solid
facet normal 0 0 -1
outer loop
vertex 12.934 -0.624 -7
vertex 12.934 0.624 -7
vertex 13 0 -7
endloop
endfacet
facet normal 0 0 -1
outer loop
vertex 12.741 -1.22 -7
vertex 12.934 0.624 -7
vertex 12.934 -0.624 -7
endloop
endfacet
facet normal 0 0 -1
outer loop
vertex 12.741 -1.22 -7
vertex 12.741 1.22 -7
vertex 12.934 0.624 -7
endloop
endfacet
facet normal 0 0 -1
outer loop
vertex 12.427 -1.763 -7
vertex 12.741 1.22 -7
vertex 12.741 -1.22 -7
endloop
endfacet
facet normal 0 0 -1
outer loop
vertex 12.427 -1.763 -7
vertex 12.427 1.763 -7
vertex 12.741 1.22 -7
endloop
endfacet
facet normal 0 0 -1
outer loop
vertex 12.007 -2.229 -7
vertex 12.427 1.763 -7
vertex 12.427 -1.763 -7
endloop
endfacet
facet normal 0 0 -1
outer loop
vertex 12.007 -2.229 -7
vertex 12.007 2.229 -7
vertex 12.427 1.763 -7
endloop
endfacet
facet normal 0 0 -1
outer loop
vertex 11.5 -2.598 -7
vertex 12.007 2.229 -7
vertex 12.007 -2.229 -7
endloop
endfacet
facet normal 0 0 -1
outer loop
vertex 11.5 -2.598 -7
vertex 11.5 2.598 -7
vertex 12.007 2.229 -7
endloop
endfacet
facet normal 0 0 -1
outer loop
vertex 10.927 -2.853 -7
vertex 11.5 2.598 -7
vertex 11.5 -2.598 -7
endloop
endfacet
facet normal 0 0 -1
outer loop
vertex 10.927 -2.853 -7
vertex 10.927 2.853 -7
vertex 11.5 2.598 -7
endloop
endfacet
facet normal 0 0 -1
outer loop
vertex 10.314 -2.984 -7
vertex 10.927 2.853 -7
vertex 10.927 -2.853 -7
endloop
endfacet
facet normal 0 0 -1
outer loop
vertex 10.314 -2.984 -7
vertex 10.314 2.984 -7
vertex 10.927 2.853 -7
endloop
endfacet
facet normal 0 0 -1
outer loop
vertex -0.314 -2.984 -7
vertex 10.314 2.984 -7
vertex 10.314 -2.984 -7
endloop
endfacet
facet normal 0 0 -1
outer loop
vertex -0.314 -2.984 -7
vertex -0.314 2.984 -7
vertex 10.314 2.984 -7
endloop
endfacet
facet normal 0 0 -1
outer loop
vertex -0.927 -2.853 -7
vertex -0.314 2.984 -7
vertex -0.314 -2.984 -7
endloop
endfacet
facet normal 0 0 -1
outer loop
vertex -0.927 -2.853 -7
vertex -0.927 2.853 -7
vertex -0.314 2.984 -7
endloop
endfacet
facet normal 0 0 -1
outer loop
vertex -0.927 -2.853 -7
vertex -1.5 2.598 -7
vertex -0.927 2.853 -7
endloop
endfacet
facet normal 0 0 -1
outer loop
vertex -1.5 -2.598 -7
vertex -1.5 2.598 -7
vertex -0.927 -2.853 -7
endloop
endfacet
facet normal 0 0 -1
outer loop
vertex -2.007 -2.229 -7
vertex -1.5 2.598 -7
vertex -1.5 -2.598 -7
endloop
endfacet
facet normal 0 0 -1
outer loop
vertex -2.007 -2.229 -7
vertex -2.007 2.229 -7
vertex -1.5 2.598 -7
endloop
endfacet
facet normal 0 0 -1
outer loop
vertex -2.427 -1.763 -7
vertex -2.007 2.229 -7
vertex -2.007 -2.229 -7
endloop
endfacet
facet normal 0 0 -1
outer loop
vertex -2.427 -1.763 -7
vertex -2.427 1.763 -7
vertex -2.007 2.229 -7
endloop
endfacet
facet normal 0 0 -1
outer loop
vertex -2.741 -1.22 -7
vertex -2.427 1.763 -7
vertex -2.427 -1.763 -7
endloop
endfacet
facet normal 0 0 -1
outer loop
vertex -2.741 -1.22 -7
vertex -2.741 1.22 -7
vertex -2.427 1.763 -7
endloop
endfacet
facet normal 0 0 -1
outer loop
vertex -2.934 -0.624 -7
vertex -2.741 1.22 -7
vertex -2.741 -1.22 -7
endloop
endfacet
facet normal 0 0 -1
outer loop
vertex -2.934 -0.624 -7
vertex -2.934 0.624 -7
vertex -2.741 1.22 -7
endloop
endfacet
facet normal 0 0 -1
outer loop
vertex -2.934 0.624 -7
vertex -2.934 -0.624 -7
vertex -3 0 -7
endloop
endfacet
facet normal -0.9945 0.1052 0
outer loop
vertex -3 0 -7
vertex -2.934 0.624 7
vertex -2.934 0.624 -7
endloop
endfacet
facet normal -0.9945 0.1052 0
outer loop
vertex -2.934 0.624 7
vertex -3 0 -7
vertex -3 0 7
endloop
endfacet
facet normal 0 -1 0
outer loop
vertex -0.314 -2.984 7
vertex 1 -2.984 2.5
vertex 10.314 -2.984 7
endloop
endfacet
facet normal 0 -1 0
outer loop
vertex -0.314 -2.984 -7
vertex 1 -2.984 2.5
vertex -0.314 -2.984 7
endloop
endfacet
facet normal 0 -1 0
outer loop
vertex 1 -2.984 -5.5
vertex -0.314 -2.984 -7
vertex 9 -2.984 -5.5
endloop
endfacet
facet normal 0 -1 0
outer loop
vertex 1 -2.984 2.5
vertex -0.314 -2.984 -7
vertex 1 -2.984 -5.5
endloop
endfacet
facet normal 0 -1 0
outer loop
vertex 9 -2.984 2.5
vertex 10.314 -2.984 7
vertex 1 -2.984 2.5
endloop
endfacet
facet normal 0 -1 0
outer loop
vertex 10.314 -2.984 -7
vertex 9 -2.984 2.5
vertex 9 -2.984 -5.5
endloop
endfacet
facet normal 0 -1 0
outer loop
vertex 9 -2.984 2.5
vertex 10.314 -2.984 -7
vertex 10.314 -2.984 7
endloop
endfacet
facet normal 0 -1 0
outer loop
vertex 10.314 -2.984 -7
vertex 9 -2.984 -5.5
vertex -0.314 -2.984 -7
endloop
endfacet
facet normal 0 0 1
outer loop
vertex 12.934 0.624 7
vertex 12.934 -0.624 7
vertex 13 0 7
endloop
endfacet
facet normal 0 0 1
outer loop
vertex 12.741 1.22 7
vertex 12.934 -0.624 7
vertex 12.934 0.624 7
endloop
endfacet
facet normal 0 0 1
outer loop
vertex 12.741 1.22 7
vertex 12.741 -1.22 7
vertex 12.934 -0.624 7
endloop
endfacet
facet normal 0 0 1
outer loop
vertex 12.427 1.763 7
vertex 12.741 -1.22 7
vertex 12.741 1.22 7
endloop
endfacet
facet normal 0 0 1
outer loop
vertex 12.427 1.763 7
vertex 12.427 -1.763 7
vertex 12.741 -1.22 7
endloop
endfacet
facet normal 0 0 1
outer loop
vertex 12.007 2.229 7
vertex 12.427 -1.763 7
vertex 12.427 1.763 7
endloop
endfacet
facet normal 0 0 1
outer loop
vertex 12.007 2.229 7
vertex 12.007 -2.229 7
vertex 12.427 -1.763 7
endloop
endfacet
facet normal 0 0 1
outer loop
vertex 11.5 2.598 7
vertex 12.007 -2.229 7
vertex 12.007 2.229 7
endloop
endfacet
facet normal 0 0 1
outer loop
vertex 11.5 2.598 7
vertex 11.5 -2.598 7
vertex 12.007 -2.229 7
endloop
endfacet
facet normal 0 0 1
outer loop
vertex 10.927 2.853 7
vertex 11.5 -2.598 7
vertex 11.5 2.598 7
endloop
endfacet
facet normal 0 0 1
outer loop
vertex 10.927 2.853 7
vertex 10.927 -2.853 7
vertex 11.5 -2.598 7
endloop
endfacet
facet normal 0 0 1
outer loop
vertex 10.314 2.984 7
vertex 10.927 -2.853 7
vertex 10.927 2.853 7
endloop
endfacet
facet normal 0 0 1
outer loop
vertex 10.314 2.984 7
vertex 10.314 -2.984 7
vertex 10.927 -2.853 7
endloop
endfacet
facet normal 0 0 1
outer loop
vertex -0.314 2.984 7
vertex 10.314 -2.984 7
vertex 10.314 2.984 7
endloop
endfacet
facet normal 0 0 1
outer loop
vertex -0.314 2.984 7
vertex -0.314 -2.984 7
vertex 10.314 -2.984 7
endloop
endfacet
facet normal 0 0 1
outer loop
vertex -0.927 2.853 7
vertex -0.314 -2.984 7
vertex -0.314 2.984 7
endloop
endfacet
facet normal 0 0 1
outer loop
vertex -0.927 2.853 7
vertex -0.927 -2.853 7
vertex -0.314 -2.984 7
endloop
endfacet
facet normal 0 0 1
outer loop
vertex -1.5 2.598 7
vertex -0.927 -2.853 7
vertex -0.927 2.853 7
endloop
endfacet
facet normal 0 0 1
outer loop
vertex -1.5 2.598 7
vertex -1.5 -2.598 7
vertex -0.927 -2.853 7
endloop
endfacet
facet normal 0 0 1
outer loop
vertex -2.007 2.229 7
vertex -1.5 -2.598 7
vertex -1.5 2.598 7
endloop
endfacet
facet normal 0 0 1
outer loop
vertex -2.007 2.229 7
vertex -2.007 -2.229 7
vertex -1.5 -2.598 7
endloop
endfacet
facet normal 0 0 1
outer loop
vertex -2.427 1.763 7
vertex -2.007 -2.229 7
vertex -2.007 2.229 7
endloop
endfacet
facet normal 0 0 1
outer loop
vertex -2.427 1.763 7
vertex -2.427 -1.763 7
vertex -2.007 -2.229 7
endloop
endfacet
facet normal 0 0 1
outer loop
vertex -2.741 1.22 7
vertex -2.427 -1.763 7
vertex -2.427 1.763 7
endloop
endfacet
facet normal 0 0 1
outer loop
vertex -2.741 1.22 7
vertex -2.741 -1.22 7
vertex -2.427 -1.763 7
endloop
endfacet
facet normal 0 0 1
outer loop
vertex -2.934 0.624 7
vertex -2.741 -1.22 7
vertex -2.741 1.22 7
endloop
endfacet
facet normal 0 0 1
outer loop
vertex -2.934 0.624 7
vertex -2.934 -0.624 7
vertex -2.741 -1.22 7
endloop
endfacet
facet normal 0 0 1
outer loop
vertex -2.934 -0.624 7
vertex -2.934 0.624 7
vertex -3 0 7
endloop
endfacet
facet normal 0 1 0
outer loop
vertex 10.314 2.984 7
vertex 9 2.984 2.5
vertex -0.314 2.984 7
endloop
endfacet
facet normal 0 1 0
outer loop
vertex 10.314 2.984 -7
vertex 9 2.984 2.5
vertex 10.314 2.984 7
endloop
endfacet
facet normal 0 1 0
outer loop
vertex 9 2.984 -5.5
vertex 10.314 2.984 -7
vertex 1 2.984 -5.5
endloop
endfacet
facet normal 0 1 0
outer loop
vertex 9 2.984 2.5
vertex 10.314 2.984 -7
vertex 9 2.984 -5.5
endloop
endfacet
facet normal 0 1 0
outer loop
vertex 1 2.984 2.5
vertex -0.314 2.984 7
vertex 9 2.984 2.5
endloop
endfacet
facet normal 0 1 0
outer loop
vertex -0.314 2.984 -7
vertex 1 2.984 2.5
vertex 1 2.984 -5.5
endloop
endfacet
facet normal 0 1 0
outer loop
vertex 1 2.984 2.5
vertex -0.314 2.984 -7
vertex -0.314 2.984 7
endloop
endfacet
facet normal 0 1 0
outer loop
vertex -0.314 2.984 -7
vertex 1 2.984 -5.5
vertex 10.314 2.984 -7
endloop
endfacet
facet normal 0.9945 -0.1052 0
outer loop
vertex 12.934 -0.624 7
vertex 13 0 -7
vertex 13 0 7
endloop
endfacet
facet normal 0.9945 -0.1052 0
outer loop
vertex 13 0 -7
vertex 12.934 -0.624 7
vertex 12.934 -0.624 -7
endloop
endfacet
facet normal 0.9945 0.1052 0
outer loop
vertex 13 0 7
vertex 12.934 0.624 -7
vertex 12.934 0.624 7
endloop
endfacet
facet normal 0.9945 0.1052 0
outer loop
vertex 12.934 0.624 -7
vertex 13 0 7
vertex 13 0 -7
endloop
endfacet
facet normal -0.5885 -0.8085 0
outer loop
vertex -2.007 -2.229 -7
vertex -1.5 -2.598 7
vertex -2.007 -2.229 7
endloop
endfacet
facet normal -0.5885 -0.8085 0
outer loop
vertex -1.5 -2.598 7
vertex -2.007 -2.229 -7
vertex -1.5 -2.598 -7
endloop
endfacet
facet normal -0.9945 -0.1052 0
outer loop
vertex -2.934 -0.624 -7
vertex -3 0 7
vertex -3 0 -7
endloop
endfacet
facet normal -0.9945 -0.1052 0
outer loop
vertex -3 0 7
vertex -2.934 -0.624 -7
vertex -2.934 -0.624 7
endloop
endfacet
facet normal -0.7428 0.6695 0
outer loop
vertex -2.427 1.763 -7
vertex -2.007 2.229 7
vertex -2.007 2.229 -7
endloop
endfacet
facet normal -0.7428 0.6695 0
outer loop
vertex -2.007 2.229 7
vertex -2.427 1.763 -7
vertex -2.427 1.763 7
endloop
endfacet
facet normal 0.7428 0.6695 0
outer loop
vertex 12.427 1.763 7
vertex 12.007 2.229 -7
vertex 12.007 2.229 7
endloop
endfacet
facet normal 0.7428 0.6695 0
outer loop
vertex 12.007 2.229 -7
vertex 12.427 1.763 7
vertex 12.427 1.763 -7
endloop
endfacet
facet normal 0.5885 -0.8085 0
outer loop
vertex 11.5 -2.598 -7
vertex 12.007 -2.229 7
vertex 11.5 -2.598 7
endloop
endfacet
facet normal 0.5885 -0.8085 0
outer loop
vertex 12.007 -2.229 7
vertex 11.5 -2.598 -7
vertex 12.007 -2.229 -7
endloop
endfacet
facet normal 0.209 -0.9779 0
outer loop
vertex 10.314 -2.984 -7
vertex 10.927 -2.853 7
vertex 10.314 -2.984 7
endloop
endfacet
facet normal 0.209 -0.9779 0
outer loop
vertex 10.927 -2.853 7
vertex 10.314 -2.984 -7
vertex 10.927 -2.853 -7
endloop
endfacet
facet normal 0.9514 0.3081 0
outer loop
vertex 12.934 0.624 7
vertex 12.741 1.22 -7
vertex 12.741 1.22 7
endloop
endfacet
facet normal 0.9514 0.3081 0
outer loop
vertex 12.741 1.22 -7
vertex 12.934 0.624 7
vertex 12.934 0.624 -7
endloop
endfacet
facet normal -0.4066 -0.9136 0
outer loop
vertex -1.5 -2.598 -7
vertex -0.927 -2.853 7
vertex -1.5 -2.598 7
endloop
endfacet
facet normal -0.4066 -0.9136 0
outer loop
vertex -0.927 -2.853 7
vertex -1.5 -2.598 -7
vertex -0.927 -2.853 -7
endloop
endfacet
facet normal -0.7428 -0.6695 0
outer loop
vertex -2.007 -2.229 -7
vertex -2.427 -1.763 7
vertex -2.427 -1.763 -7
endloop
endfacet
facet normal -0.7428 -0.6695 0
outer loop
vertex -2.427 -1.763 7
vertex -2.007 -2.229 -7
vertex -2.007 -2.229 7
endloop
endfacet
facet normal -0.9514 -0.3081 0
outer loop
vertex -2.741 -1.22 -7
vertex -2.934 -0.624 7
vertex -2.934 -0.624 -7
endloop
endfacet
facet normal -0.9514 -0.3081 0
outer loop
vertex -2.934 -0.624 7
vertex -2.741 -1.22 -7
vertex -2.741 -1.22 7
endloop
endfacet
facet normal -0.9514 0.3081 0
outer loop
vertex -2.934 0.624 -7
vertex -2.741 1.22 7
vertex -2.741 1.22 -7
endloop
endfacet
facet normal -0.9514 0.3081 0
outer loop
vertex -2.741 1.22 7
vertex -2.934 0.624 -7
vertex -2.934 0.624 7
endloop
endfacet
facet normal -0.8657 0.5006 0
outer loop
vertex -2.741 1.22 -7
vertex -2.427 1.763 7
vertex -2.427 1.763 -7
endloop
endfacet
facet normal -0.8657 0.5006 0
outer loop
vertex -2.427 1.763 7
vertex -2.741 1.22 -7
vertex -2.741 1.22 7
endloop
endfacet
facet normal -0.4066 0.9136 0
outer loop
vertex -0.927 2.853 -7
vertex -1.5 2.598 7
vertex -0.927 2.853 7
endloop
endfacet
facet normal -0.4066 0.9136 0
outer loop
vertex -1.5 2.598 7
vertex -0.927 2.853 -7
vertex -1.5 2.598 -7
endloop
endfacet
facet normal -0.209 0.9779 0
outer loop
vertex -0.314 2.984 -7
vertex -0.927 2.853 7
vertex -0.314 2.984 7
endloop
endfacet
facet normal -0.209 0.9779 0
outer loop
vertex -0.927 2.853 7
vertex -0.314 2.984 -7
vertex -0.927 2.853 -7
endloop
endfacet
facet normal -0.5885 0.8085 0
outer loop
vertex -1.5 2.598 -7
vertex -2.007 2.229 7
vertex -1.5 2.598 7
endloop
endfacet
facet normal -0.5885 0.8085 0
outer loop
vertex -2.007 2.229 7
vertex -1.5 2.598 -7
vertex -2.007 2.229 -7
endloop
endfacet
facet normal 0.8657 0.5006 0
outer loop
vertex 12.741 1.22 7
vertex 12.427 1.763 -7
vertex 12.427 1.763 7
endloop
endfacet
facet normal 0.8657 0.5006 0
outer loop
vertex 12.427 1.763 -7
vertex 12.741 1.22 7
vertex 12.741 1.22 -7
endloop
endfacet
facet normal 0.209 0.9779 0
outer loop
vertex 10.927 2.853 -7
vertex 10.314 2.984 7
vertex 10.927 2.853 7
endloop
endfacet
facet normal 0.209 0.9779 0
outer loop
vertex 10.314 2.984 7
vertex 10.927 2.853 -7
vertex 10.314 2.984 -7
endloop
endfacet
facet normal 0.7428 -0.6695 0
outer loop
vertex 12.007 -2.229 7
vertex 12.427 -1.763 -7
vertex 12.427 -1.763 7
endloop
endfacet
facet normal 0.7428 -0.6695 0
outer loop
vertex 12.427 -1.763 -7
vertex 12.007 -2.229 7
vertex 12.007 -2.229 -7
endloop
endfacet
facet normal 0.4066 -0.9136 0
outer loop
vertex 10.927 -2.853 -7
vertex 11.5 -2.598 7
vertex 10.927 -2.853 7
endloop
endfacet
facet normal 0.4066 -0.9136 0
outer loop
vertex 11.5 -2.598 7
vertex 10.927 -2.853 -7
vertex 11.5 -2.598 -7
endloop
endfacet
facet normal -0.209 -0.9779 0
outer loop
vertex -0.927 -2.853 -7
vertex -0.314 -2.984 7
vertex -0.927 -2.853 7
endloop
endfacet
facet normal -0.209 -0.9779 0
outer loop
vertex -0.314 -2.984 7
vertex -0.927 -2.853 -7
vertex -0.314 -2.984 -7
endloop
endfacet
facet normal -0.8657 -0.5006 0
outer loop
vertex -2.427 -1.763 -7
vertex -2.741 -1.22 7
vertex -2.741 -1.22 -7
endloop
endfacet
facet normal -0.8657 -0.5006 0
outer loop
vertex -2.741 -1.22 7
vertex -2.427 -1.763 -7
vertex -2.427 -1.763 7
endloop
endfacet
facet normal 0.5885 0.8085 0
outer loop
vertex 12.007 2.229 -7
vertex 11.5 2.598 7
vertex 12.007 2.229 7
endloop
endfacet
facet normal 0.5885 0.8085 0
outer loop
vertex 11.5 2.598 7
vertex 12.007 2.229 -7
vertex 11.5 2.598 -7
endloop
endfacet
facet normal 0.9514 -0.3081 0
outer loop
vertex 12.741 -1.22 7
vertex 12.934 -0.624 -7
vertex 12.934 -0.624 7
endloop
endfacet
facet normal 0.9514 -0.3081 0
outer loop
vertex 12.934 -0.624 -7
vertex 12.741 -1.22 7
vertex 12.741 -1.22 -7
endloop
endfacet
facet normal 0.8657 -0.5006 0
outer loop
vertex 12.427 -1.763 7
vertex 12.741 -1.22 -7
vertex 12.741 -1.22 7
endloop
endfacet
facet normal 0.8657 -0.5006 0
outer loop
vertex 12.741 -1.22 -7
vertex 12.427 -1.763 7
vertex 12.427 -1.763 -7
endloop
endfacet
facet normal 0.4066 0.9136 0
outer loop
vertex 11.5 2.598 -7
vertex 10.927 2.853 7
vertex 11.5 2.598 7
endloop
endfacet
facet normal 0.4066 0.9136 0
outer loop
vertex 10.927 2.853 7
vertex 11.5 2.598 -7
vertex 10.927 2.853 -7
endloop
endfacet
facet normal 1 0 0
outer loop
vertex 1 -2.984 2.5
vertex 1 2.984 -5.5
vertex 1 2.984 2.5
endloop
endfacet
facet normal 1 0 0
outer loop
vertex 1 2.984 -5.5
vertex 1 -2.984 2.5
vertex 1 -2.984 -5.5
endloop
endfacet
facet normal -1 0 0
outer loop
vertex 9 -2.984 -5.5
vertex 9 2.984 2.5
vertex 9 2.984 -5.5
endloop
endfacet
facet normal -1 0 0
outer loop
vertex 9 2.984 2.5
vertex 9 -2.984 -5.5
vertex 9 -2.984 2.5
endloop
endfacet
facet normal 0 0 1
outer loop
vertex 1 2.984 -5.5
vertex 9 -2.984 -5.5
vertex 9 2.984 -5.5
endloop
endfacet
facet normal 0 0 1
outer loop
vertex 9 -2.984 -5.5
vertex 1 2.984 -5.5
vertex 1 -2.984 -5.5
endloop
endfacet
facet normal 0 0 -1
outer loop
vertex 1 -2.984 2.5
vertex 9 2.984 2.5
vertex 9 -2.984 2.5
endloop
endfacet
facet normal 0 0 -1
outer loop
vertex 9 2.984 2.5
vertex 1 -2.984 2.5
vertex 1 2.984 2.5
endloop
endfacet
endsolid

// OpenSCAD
$fn=30;
height=10;
radius=3;
difference(){
    hull(){
      cylinder(r=radius,h=height+4, center=true);
      translate([10,0,0])cylinder(r=radius,h=height+4, center=true);
  }
  rotate([90,0,0]) translate([5,-1.5,0])cube([height-2,height-2,999],center=true);
}
